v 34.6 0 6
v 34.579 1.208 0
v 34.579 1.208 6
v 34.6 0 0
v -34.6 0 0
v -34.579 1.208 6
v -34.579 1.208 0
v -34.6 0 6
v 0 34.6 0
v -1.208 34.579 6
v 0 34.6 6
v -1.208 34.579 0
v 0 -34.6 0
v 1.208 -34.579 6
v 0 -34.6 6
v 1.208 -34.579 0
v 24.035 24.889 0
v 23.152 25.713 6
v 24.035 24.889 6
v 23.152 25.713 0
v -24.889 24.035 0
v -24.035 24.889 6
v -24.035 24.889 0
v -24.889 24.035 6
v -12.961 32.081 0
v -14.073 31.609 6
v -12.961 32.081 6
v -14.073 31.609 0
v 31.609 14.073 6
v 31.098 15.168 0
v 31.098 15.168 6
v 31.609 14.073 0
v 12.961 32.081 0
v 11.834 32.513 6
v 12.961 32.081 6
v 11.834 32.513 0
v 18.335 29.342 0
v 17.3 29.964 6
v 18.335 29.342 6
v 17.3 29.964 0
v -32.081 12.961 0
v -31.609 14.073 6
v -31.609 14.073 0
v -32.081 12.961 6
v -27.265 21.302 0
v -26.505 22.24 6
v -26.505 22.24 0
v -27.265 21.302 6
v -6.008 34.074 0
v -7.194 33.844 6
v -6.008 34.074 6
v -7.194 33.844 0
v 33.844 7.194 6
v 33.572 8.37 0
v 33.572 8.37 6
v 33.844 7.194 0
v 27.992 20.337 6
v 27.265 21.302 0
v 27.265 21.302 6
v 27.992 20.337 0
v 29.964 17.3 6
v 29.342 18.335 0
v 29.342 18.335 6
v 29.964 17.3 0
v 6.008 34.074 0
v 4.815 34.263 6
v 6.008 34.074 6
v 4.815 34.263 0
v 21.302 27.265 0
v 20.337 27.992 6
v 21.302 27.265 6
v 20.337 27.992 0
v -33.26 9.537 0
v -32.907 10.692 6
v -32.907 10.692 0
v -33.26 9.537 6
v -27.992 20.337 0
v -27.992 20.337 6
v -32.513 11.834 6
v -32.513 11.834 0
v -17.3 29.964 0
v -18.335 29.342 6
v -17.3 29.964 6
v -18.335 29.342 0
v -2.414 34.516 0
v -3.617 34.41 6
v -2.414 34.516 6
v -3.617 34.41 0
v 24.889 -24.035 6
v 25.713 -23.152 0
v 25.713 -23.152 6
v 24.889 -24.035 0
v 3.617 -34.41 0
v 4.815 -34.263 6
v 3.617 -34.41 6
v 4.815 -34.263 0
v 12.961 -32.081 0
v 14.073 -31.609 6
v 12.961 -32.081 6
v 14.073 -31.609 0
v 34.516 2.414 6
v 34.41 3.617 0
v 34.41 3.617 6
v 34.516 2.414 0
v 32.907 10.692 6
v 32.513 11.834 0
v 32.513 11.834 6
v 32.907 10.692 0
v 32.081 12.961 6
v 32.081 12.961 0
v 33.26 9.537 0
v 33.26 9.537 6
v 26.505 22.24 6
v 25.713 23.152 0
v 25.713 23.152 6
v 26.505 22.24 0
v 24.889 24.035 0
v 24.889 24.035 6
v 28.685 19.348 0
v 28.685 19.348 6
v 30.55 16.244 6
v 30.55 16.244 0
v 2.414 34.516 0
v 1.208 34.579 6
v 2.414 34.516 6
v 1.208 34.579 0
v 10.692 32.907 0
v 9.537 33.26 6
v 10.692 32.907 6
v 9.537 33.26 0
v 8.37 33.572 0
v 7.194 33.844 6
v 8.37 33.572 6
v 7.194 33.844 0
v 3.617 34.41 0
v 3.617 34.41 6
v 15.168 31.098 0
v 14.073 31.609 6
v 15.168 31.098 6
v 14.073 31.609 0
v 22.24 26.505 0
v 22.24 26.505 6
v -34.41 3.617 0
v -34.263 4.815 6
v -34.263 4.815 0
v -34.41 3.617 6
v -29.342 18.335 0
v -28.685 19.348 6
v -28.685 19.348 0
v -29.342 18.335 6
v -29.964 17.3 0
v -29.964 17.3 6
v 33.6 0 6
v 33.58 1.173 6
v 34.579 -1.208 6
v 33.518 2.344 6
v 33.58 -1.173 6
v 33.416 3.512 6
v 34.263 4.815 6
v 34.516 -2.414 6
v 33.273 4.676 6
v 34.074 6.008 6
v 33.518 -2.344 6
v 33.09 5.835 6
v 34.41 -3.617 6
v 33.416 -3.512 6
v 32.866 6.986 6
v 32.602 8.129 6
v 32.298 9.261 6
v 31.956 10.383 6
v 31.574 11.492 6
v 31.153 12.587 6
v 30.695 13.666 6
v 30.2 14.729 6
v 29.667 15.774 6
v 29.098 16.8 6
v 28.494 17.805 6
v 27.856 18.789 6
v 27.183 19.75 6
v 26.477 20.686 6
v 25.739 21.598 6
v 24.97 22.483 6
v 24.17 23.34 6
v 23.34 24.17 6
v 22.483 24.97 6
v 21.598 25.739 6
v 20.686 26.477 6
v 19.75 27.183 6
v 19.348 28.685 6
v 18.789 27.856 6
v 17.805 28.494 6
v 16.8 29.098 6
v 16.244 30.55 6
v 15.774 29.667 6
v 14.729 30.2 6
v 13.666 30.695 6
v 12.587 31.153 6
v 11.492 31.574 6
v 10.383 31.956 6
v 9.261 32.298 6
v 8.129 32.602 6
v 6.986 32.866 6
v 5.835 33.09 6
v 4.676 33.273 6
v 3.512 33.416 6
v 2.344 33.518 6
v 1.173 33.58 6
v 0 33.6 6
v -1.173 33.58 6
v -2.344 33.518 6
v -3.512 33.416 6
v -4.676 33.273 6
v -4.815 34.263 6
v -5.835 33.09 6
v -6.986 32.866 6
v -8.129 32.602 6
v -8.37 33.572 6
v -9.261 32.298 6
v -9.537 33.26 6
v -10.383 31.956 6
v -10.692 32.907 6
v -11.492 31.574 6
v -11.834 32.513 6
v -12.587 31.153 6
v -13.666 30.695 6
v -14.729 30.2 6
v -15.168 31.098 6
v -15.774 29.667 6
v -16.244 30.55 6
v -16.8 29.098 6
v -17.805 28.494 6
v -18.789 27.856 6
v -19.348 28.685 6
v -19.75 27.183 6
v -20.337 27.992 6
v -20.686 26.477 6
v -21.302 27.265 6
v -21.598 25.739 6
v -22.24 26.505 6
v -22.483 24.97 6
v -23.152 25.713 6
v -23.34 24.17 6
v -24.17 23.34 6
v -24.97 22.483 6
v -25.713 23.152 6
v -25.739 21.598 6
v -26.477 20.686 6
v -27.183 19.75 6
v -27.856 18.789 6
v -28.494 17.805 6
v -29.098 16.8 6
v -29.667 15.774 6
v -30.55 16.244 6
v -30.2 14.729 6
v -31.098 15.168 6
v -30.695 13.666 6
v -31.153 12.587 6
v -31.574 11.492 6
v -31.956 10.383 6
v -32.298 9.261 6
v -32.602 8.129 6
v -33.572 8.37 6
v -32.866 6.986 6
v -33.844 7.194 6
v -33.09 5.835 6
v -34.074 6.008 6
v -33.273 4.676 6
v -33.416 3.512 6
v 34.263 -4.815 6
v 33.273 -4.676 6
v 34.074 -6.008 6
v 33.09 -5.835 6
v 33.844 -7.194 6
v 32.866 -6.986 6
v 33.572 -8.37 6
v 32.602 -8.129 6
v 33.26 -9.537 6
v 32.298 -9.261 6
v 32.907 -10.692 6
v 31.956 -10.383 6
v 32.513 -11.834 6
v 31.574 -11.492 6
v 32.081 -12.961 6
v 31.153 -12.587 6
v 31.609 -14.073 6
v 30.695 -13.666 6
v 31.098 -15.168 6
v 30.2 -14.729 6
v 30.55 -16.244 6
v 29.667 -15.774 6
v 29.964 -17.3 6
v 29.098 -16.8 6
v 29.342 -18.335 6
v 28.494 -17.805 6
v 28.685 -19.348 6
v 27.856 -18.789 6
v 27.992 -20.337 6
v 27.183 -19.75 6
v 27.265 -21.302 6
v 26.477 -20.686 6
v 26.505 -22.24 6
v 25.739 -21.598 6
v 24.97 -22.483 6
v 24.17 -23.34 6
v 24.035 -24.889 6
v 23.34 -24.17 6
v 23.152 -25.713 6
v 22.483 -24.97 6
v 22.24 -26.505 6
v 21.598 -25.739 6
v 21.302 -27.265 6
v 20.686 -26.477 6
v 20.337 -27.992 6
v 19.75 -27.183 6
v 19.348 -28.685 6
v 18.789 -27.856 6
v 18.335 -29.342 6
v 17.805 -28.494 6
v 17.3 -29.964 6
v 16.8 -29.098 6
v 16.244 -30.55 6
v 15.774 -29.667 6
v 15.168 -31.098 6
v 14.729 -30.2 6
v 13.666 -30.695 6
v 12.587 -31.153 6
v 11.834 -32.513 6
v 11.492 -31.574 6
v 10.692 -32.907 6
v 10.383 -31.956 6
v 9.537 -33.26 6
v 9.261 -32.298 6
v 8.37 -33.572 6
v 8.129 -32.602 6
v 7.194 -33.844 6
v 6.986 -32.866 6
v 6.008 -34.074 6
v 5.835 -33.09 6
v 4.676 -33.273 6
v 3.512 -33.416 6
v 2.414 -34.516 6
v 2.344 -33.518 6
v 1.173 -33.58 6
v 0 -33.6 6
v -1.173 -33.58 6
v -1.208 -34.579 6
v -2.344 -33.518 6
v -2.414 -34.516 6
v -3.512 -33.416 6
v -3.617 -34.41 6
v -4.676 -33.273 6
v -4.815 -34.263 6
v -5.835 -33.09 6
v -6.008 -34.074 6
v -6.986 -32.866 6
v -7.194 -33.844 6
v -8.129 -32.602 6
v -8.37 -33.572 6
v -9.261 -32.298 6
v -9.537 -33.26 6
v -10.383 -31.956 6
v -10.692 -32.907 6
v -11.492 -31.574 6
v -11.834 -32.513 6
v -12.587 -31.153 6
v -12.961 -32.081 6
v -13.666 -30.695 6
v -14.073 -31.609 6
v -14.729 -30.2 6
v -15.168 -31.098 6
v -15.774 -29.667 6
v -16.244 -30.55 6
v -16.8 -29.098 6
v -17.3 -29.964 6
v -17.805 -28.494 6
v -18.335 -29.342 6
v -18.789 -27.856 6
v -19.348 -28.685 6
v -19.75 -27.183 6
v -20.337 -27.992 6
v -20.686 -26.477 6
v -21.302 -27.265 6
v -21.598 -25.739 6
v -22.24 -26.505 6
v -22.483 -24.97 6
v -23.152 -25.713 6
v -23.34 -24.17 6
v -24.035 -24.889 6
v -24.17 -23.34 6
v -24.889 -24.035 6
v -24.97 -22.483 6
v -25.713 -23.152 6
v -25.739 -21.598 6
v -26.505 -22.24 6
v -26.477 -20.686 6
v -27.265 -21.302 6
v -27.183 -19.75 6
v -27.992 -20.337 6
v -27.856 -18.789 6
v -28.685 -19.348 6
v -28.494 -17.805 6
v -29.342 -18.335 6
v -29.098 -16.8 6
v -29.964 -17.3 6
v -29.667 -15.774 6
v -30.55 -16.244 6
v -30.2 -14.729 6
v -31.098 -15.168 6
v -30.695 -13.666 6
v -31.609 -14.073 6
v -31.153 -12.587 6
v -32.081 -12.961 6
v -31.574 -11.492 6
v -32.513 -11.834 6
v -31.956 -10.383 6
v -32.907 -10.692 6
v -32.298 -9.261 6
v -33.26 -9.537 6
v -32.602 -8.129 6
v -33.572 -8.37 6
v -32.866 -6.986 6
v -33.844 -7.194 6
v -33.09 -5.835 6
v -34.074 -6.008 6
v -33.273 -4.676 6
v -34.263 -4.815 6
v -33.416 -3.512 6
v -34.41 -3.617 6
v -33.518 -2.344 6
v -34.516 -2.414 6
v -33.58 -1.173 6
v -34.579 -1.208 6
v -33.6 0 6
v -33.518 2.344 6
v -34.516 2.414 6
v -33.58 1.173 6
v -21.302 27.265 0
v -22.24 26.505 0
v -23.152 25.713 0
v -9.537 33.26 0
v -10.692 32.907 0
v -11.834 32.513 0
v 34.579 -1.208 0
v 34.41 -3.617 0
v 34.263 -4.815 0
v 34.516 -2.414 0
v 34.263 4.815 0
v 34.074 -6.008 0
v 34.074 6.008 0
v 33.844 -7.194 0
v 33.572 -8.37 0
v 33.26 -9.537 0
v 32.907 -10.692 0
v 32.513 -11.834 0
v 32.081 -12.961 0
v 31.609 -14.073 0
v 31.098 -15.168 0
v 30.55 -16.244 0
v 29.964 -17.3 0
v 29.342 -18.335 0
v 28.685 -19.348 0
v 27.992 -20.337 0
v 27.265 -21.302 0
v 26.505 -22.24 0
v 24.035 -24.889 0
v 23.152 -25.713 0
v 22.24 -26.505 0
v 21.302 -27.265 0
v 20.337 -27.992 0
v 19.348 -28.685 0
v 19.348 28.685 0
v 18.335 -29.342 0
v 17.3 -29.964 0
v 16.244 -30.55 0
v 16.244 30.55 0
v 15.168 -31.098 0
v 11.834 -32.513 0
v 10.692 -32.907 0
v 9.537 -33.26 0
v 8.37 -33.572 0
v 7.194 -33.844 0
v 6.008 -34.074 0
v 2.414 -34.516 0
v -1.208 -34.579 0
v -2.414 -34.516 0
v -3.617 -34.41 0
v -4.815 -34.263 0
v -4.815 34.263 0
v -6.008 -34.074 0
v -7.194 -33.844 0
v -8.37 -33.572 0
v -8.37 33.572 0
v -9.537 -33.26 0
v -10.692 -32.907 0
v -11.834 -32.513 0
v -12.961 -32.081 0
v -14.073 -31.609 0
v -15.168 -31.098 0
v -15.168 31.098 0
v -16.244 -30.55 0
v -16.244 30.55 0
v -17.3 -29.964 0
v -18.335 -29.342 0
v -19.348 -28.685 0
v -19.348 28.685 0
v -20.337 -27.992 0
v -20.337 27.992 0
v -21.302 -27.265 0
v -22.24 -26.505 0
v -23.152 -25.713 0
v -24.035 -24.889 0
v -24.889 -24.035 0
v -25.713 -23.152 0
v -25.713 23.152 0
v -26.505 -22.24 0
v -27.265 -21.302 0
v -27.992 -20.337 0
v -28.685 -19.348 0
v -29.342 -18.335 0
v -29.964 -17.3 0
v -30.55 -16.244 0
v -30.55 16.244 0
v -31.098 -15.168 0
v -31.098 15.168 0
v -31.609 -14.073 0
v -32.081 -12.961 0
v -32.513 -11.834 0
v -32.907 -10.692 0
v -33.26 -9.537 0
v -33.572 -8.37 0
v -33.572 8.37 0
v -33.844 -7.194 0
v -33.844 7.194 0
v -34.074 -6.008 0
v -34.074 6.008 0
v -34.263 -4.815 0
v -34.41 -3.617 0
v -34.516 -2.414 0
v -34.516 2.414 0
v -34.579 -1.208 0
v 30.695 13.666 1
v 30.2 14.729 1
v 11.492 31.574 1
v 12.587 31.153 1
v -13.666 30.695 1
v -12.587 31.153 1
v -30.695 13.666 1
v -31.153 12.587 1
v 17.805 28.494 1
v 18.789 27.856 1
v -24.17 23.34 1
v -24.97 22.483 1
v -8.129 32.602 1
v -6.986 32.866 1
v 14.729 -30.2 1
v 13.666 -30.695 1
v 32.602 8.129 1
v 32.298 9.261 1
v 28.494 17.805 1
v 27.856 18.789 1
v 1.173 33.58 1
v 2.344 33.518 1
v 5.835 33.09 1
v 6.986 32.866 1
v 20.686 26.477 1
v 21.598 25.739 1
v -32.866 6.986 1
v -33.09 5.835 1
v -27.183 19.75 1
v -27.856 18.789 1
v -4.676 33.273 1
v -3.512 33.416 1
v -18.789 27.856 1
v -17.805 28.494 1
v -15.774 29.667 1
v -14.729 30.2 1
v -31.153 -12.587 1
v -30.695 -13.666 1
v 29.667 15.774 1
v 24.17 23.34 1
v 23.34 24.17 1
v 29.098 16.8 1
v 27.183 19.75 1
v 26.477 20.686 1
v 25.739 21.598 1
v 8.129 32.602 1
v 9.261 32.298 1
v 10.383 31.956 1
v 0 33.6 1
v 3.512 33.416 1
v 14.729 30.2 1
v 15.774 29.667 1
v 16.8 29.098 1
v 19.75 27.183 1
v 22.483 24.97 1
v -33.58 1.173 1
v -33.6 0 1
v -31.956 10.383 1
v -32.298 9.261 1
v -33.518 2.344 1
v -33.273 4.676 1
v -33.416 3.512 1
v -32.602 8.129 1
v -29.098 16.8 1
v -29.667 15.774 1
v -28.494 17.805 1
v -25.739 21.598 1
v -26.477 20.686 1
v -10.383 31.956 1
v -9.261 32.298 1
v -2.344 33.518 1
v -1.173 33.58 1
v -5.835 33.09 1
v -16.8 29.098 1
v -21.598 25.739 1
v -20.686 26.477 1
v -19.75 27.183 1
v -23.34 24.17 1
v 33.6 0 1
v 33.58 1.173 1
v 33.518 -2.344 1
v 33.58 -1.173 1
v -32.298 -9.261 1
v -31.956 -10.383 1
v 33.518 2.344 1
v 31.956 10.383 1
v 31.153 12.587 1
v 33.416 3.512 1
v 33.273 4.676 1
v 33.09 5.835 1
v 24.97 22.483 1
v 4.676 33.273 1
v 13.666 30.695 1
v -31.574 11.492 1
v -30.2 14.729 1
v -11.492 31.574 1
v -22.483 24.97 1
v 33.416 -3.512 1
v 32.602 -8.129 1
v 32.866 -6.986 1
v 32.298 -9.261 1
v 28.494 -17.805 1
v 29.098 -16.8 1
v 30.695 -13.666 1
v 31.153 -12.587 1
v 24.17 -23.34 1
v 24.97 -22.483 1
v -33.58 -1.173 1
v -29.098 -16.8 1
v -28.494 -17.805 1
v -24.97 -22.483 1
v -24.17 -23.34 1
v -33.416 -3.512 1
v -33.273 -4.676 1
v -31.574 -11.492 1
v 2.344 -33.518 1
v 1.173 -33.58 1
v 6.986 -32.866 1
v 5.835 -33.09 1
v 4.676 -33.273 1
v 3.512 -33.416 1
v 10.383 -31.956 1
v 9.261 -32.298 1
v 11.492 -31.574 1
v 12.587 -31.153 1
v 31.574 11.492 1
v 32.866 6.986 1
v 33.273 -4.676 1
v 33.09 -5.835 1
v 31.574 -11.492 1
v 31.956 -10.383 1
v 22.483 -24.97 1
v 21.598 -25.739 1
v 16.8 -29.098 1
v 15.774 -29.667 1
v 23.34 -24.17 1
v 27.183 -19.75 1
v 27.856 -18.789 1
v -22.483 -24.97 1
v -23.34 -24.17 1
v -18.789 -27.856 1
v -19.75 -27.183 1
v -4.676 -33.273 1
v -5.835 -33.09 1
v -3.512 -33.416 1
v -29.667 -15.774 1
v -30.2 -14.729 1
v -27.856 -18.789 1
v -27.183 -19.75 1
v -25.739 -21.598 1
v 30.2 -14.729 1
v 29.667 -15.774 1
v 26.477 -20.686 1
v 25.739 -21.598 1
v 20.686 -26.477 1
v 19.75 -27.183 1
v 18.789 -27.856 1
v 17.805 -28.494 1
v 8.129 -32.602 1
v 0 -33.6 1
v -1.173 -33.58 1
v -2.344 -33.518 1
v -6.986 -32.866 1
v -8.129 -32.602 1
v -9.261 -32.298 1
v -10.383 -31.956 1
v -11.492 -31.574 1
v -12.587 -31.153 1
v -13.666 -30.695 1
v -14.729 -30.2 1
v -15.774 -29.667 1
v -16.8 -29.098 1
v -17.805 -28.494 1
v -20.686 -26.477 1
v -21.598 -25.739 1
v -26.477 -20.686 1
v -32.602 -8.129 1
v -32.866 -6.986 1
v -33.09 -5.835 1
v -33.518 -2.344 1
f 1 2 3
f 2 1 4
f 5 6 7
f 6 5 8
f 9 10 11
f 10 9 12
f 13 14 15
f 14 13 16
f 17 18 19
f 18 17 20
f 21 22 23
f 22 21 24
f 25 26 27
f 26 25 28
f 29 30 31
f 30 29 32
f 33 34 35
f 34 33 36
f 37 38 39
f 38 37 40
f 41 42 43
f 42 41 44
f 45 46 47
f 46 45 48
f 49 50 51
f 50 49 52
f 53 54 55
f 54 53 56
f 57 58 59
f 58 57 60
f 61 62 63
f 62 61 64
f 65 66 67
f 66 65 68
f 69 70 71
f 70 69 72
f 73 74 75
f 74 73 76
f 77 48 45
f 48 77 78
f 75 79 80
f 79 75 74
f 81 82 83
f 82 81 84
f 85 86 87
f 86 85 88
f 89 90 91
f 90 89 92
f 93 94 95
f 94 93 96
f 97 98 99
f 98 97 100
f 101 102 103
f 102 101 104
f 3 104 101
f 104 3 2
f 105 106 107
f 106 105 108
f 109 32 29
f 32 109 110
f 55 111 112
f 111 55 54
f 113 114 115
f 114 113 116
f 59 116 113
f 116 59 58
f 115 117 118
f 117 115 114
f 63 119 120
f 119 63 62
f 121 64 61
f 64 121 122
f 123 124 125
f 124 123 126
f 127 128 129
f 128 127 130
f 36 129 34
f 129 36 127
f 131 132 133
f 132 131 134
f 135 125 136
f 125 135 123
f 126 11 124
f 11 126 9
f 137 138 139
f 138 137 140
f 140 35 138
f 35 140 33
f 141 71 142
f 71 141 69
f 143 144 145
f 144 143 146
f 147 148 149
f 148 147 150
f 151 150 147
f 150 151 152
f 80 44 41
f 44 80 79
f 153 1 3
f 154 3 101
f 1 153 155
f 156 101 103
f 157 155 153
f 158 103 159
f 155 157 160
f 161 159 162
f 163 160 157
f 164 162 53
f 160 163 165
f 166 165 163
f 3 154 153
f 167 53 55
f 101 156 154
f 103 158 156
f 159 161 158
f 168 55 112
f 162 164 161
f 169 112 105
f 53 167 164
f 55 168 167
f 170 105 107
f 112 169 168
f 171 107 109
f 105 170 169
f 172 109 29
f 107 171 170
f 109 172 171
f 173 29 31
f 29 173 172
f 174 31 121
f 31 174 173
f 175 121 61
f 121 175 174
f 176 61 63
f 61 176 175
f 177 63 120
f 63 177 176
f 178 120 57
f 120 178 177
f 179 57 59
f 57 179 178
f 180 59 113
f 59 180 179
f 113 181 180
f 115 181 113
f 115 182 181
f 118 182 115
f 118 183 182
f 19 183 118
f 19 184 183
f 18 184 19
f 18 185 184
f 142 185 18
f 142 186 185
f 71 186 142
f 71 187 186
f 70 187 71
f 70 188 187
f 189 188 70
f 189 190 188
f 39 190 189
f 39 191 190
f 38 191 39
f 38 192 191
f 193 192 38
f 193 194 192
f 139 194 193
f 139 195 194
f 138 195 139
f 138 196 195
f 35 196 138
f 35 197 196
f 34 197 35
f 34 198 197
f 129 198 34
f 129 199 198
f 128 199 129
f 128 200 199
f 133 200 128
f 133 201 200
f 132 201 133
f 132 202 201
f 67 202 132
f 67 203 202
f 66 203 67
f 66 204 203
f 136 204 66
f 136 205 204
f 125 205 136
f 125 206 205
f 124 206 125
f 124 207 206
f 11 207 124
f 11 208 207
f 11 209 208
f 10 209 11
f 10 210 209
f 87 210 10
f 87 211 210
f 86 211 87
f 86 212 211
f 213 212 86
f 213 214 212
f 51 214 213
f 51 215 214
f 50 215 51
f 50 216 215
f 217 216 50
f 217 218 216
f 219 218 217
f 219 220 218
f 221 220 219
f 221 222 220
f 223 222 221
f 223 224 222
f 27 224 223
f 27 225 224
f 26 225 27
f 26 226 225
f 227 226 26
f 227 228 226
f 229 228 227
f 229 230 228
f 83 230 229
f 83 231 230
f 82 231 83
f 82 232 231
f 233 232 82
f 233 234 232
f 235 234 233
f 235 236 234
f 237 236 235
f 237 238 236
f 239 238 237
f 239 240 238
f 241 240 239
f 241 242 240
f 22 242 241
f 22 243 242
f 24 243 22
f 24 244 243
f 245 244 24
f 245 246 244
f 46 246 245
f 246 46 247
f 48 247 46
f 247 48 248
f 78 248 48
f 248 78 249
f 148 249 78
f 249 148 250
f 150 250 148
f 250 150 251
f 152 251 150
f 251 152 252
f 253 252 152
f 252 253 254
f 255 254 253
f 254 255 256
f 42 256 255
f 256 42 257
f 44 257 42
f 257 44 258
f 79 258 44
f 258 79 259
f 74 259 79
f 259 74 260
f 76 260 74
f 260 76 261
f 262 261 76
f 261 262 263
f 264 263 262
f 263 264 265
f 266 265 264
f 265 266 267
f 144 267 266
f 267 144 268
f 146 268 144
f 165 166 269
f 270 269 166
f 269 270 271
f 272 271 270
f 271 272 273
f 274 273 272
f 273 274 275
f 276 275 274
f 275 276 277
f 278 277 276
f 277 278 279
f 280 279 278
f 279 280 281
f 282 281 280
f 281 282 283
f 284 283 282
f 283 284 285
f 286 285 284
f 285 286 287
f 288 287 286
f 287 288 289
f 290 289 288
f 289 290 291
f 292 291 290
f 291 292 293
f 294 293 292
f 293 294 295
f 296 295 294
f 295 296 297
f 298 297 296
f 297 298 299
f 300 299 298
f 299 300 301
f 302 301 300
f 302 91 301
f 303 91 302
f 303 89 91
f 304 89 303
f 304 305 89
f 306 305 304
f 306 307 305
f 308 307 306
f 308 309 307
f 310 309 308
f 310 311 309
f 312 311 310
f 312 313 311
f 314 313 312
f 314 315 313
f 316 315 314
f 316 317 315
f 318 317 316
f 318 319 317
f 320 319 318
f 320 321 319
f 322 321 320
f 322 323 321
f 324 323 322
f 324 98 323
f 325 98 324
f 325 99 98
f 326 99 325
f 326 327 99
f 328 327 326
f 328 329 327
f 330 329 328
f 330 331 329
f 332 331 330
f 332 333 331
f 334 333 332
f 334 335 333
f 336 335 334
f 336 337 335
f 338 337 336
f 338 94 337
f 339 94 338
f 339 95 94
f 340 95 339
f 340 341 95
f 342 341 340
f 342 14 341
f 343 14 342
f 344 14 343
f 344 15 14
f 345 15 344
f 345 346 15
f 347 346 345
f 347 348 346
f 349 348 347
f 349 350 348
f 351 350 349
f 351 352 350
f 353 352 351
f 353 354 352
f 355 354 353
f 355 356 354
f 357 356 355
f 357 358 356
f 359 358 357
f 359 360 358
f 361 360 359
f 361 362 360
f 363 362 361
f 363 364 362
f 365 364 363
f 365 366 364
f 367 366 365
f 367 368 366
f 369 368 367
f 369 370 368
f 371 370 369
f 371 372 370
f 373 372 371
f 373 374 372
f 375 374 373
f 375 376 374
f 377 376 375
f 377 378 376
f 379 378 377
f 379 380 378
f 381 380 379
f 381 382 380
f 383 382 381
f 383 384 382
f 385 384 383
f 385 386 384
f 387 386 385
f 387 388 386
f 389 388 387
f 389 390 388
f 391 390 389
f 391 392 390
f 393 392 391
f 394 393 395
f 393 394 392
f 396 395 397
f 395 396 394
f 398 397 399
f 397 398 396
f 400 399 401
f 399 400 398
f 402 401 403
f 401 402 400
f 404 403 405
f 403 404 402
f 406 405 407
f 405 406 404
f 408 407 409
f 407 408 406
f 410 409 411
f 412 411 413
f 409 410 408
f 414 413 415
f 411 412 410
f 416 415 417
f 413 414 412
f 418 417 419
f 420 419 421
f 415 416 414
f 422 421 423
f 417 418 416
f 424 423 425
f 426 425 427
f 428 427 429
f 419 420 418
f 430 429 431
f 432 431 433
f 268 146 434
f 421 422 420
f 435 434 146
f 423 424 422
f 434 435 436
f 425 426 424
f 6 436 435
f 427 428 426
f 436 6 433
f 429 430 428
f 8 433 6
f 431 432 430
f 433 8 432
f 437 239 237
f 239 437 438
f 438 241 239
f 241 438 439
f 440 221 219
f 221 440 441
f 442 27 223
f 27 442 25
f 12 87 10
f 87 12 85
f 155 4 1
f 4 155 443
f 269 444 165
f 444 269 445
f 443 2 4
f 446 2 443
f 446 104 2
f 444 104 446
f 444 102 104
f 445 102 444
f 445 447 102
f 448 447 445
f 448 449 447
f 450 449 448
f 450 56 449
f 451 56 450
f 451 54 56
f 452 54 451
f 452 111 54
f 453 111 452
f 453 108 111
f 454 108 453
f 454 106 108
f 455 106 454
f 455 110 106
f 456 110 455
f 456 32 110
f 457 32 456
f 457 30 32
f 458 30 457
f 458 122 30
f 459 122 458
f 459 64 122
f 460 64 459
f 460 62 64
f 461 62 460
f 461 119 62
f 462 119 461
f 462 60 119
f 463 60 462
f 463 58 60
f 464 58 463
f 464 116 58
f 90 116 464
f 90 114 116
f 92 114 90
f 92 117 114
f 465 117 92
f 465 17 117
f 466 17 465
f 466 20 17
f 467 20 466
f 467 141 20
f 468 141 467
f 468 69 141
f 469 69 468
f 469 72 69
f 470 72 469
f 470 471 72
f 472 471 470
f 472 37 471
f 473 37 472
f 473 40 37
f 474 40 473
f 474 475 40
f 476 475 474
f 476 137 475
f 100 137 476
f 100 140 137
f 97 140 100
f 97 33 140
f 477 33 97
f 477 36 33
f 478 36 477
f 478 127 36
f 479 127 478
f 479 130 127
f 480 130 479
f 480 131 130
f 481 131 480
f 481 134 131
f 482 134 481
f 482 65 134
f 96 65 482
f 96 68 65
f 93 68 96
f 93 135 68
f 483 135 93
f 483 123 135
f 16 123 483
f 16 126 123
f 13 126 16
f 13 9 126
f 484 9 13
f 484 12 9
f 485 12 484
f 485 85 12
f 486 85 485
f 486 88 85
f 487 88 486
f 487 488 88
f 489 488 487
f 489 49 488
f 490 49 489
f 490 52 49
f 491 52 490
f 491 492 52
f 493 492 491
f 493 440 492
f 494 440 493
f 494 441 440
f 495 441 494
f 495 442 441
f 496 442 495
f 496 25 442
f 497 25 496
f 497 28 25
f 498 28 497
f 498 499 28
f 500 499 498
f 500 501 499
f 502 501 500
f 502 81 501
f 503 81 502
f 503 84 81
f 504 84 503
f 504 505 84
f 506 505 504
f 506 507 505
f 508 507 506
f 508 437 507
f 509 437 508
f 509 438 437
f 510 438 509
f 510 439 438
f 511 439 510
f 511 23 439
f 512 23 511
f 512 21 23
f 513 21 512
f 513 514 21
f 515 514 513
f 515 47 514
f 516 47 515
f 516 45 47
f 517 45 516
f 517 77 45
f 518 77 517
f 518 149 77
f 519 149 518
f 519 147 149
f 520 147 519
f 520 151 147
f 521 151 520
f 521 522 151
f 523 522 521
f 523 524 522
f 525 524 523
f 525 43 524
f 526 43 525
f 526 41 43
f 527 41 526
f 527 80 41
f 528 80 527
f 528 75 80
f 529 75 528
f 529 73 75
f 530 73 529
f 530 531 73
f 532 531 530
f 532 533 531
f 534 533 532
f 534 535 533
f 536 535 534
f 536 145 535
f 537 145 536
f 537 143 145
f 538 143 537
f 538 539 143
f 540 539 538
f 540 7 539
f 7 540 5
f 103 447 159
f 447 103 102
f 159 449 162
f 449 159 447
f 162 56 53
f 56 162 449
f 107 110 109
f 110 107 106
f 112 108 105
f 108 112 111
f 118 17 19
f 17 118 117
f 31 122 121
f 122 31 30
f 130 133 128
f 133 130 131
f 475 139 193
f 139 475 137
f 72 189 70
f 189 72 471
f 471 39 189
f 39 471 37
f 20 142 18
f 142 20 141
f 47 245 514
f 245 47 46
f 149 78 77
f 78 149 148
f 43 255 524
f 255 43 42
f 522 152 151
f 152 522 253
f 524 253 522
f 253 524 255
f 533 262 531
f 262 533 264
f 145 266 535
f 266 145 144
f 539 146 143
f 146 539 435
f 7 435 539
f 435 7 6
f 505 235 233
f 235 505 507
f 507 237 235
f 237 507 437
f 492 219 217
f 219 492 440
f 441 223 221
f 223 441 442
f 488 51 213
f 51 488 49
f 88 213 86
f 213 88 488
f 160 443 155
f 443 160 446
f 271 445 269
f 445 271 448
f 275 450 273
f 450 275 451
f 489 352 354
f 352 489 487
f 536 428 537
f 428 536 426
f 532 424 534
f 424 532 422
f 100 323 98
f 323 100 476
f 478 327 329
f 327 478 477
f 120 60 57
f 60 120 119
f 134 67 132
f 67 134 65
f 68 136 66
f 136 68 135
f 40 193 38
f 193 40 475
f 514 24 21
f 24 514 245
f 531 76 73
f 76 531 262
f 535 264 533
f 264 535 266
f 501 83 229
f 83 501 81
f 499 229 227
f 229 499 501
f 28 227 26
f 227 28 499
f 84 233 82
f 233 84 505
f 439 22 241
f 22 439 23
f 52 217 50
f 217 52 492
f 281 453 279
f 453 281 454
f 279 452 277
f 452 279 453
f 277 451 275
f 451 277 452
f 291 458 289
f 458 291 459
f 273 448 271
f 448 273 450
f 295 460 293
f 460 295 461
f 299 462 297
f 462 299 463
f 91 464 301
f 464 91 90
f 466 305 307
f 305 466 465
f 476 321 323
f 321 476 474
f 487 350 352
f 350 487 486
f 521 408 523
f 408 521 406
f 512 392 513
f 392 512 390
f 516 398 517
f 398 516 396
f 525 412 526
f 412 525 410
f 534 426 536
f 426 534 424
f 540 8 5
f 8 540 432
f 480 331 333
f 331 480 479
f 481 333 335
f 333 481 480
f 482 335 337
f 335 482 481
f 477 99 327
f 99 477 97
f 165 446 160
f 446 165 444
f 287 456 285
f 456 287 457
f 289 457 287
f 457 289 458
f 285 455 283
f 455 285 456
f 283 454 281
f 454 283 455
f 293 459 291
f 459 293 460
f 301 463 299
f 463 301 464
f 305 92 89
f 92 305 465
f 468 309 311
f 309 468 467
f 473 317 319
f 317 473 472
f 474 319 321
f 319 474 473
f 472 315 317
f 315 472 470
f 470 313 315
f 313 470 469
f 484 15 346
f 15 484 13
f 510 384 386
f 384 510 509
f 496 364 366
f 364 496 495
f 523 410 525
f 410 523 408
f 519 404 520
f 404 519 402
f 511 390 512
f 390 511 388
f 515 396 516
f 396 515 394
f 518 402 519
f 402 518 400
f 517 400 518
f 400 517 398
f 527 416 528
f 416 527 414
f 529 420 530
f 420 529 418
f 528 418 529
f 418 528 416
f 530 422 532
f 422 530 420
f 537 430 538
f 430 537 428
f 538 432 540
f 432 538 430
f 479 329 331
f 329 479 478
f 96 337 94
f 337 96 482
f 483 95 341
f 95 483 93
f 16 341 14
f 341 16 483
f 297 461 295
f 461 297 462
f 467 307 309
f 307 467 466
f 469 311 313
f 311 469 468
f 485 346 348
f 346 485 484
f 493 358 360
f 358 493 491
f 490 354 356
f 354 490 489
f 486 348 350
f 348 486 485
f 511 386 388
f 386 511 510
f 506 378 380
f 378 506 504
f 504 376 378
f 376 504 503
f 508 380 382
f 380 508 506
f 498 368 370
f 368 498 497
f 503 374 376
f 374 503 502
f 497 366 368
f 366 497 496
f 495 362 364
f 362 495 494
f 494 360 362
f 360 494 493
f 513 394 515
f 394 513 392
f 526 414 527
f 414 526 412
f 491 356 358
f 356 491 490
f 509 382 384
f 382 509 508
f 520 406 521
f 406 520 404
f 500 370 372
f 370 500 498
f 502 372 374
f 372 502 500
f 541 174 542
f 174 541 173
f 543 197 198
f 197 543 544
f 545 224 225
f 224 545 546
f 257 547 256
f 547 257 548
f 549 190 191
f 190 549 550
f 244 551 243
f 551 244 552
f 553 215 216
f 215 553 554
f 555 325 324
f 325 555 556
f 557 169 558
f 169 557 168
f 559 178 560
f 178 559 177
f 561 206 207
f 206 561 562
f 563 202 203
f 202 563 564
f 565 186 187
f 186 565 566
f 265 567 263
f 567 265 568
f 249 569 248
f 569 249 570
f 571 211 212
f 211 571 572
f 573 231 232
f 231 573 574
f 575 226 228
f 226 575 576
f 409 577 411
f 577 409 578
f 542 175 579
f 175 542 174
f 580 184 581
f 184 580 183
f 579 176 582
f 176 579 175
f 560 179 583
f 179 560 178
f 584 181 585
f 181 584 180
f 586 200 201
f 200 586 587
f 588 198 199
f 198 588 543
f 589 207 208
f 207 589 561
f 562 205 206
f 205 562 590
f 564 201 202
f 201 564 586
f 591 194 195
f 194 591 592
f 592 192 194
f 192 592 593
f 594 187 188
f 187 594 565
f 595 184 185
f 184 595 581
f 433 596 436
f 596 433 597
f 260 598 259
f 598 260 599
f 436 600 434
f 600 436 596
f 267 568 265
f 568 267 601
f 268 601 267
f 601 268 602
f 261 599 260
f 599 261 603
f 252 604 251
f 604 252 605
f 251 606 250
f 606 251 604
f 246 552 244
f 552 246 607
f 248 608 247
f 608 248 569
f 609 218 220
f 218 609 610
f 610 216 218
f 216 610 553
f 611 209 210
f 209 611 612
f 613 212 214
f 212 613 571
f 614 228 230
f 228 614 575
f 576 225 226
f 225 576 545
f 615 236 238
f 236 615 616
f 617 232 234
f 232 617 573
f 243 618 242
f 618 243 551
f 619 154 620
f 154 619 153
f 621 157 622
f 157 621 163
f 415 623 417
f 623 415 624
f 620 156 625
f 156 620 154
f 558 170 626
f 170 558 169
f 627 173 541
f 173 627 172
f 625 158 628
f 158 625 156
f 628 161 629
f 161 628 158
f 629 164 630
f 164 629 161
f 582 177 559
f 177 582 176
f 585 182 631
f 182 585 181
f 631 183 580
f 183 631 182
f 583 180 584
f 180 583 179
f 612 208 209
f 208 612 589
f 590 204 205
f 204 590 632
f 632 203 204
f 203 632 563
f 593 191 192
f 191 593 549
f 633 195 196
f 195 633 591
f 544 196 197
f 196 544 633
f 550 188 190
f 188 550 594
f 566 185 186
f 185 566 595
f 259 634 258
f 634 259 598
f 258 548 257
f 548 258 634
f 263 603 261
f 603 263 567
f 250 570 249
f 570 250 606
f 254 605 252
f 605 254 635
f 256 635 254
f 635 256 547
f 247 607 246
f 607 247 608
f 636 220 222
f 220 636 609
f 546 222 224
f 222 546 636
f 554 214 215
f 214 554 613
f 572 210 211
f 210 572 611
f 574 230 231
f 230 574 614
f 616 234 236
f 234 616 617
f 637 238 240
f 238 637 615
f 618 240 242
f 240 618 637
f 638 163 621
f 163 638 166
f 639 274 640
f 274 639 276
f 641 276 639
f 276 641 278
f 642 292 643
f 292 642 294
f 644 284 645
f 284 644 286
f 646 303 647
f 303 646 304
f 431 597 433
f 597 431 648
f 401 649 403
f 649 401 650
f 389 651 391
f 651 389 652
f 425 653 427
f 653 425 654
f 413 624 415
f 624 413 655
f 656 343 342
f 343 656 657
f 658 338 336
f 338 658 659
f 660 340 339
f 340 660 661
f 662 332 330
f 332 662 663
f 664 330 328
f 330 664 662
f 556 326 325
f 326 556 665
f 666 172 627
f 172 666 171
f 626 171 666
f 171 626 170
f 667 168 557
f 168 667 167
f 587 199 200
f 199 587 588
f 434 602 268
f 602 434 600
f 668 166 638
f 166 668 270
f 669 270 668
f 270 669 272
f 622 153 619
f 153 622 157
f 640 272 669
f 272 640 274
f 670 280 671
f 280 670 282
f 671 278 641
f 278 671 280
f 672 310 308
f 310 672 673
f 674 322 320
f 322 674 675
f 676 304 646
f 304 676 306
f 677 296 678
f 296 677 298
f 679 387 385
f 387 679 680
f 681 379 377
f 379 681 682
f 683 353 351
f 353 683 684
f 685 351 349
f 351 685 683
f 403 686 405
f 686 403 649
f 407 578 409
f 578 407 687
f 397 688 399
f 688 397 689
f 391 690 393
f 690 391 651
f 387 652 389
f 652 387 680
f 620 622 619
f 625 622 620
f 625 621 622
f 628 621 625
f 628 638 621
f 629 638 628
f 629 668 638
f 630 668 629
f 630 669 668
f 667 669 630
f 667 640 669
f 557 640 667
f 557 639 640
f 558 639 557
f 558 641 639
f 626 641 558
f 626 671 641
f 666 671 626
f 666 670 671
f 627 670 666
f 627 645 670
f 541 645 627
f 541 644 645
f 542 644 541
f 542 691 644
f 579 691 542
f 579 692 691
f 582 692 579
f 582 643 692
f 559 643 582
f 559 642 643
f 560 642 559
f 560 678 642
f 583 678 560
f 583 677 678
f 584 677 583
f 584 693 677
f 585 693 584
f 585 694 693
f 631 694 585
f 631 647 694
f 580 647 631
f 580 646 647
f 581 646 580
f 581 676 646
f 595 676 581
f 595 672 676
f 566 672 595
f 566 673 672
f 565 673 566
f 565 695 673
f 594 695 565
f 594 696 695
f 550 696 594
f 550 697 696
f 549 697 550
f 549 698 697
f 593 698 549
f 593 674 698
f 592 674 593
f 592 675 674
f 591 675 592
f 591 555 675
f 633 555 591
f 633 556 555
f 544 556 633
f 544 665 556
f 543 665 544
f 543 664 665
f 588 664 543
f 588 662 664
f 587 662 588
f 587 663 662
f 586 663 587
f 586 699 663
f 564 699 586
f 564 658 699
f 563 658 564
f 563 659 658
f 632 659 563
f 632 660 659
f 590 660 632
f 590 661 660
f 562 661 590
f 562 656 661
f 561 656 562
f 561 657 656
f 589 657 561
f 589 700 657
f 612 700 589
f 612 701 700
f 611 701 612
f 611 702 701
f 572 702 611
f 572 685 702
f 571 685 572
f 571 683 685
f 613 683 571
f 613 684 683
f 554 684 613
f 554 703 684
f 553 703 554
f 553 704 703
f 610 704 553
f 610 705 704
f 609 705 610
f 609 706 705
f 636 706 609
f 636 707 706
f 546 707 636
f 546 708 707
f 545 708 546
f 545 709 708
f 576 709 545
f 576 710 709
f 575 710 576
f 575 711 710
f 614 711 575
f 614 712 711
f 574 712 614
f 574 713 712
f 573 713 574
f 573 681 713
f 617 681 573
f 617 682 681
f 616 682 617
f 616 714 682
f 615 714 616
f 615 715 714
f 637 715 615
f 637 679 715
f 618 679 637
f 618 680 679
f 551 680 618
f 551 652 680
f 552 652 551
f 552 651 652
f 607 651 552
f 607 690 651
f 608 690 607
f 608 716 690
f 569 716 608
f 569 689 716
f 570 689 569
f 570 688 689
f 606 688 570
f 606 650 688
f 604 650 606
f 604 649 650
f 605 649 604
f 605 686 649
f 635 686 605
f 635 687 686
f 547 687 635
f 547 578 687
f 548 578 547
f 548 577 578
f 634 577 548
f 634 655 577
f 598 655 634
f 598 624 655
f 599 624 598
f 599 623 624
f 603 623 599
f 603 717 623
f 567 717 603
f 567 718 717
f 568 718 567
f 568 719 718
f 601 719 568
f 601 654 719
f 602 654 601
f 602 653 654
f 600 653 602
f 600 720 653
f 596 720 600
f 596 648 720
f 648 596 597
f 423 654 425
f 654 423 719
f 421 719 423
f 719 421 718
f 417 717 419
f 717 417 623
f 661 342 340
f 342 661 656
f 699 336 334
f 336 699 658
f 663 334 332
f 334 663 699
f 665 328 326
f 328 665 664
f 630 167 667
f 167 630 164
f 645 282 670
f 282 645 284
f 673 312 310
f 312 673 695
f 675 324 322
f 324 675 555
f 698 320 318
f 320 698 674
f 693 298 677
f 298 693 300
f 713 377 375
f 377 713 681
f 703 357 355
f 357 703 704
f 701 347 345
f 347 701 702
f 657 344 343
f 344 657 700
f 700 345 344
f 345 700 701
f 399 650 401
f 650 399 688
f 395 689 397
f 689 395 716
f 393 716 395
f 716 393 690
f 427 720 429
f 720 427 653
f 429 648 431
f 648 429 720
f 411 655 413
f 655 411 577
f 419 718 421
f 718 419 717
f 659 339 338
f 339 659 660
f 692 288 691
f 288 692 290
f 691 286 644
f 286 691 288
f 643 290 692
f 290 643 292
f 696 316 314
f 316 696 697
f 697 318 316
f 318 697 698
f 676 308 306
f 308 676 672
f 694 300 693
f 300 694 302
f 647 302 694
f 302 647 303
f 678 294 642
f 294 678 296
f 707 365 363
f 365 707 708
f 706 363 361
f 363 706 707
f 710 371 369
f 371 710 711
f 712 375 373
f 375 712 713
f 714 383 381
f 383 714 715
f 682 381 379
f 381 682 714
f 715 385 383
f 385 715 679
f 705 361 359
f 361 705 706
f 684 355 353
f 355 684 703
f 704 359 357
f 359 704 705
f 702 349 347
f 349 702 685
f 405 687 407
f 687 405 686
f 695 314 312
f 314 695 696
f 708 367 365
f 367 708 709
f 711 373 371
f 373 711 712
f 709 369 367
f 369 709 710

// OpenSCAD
// Inputs

$inner_diameter = 67; //Radius of outertube wall (mm)
$endcap_height = 5; // (mm)
$endcap_width = 1; // (mm)
$endcap_bottom = 1; // (mm)
$tolerence = 0.2; // (mm)



$number_of_fragments = 180; // 90 is fine by default, choose lower for quicker rendering


// Model code

$inner_radius = $inner_diameter/2;

module endcap($fn = $number_of_fragments) {


    difference() {
        
        cylinder(h = $endcap_height + $endcap_bottom, r =  $inner_radius + $endcap_width + $tolerence/2);
        translate([0, 0, $endcap_bottom])
        cylinder(h = 3*$endcap_height, r =  $inner_radius + $tolerence/2);
          
    }
}


endcap();
